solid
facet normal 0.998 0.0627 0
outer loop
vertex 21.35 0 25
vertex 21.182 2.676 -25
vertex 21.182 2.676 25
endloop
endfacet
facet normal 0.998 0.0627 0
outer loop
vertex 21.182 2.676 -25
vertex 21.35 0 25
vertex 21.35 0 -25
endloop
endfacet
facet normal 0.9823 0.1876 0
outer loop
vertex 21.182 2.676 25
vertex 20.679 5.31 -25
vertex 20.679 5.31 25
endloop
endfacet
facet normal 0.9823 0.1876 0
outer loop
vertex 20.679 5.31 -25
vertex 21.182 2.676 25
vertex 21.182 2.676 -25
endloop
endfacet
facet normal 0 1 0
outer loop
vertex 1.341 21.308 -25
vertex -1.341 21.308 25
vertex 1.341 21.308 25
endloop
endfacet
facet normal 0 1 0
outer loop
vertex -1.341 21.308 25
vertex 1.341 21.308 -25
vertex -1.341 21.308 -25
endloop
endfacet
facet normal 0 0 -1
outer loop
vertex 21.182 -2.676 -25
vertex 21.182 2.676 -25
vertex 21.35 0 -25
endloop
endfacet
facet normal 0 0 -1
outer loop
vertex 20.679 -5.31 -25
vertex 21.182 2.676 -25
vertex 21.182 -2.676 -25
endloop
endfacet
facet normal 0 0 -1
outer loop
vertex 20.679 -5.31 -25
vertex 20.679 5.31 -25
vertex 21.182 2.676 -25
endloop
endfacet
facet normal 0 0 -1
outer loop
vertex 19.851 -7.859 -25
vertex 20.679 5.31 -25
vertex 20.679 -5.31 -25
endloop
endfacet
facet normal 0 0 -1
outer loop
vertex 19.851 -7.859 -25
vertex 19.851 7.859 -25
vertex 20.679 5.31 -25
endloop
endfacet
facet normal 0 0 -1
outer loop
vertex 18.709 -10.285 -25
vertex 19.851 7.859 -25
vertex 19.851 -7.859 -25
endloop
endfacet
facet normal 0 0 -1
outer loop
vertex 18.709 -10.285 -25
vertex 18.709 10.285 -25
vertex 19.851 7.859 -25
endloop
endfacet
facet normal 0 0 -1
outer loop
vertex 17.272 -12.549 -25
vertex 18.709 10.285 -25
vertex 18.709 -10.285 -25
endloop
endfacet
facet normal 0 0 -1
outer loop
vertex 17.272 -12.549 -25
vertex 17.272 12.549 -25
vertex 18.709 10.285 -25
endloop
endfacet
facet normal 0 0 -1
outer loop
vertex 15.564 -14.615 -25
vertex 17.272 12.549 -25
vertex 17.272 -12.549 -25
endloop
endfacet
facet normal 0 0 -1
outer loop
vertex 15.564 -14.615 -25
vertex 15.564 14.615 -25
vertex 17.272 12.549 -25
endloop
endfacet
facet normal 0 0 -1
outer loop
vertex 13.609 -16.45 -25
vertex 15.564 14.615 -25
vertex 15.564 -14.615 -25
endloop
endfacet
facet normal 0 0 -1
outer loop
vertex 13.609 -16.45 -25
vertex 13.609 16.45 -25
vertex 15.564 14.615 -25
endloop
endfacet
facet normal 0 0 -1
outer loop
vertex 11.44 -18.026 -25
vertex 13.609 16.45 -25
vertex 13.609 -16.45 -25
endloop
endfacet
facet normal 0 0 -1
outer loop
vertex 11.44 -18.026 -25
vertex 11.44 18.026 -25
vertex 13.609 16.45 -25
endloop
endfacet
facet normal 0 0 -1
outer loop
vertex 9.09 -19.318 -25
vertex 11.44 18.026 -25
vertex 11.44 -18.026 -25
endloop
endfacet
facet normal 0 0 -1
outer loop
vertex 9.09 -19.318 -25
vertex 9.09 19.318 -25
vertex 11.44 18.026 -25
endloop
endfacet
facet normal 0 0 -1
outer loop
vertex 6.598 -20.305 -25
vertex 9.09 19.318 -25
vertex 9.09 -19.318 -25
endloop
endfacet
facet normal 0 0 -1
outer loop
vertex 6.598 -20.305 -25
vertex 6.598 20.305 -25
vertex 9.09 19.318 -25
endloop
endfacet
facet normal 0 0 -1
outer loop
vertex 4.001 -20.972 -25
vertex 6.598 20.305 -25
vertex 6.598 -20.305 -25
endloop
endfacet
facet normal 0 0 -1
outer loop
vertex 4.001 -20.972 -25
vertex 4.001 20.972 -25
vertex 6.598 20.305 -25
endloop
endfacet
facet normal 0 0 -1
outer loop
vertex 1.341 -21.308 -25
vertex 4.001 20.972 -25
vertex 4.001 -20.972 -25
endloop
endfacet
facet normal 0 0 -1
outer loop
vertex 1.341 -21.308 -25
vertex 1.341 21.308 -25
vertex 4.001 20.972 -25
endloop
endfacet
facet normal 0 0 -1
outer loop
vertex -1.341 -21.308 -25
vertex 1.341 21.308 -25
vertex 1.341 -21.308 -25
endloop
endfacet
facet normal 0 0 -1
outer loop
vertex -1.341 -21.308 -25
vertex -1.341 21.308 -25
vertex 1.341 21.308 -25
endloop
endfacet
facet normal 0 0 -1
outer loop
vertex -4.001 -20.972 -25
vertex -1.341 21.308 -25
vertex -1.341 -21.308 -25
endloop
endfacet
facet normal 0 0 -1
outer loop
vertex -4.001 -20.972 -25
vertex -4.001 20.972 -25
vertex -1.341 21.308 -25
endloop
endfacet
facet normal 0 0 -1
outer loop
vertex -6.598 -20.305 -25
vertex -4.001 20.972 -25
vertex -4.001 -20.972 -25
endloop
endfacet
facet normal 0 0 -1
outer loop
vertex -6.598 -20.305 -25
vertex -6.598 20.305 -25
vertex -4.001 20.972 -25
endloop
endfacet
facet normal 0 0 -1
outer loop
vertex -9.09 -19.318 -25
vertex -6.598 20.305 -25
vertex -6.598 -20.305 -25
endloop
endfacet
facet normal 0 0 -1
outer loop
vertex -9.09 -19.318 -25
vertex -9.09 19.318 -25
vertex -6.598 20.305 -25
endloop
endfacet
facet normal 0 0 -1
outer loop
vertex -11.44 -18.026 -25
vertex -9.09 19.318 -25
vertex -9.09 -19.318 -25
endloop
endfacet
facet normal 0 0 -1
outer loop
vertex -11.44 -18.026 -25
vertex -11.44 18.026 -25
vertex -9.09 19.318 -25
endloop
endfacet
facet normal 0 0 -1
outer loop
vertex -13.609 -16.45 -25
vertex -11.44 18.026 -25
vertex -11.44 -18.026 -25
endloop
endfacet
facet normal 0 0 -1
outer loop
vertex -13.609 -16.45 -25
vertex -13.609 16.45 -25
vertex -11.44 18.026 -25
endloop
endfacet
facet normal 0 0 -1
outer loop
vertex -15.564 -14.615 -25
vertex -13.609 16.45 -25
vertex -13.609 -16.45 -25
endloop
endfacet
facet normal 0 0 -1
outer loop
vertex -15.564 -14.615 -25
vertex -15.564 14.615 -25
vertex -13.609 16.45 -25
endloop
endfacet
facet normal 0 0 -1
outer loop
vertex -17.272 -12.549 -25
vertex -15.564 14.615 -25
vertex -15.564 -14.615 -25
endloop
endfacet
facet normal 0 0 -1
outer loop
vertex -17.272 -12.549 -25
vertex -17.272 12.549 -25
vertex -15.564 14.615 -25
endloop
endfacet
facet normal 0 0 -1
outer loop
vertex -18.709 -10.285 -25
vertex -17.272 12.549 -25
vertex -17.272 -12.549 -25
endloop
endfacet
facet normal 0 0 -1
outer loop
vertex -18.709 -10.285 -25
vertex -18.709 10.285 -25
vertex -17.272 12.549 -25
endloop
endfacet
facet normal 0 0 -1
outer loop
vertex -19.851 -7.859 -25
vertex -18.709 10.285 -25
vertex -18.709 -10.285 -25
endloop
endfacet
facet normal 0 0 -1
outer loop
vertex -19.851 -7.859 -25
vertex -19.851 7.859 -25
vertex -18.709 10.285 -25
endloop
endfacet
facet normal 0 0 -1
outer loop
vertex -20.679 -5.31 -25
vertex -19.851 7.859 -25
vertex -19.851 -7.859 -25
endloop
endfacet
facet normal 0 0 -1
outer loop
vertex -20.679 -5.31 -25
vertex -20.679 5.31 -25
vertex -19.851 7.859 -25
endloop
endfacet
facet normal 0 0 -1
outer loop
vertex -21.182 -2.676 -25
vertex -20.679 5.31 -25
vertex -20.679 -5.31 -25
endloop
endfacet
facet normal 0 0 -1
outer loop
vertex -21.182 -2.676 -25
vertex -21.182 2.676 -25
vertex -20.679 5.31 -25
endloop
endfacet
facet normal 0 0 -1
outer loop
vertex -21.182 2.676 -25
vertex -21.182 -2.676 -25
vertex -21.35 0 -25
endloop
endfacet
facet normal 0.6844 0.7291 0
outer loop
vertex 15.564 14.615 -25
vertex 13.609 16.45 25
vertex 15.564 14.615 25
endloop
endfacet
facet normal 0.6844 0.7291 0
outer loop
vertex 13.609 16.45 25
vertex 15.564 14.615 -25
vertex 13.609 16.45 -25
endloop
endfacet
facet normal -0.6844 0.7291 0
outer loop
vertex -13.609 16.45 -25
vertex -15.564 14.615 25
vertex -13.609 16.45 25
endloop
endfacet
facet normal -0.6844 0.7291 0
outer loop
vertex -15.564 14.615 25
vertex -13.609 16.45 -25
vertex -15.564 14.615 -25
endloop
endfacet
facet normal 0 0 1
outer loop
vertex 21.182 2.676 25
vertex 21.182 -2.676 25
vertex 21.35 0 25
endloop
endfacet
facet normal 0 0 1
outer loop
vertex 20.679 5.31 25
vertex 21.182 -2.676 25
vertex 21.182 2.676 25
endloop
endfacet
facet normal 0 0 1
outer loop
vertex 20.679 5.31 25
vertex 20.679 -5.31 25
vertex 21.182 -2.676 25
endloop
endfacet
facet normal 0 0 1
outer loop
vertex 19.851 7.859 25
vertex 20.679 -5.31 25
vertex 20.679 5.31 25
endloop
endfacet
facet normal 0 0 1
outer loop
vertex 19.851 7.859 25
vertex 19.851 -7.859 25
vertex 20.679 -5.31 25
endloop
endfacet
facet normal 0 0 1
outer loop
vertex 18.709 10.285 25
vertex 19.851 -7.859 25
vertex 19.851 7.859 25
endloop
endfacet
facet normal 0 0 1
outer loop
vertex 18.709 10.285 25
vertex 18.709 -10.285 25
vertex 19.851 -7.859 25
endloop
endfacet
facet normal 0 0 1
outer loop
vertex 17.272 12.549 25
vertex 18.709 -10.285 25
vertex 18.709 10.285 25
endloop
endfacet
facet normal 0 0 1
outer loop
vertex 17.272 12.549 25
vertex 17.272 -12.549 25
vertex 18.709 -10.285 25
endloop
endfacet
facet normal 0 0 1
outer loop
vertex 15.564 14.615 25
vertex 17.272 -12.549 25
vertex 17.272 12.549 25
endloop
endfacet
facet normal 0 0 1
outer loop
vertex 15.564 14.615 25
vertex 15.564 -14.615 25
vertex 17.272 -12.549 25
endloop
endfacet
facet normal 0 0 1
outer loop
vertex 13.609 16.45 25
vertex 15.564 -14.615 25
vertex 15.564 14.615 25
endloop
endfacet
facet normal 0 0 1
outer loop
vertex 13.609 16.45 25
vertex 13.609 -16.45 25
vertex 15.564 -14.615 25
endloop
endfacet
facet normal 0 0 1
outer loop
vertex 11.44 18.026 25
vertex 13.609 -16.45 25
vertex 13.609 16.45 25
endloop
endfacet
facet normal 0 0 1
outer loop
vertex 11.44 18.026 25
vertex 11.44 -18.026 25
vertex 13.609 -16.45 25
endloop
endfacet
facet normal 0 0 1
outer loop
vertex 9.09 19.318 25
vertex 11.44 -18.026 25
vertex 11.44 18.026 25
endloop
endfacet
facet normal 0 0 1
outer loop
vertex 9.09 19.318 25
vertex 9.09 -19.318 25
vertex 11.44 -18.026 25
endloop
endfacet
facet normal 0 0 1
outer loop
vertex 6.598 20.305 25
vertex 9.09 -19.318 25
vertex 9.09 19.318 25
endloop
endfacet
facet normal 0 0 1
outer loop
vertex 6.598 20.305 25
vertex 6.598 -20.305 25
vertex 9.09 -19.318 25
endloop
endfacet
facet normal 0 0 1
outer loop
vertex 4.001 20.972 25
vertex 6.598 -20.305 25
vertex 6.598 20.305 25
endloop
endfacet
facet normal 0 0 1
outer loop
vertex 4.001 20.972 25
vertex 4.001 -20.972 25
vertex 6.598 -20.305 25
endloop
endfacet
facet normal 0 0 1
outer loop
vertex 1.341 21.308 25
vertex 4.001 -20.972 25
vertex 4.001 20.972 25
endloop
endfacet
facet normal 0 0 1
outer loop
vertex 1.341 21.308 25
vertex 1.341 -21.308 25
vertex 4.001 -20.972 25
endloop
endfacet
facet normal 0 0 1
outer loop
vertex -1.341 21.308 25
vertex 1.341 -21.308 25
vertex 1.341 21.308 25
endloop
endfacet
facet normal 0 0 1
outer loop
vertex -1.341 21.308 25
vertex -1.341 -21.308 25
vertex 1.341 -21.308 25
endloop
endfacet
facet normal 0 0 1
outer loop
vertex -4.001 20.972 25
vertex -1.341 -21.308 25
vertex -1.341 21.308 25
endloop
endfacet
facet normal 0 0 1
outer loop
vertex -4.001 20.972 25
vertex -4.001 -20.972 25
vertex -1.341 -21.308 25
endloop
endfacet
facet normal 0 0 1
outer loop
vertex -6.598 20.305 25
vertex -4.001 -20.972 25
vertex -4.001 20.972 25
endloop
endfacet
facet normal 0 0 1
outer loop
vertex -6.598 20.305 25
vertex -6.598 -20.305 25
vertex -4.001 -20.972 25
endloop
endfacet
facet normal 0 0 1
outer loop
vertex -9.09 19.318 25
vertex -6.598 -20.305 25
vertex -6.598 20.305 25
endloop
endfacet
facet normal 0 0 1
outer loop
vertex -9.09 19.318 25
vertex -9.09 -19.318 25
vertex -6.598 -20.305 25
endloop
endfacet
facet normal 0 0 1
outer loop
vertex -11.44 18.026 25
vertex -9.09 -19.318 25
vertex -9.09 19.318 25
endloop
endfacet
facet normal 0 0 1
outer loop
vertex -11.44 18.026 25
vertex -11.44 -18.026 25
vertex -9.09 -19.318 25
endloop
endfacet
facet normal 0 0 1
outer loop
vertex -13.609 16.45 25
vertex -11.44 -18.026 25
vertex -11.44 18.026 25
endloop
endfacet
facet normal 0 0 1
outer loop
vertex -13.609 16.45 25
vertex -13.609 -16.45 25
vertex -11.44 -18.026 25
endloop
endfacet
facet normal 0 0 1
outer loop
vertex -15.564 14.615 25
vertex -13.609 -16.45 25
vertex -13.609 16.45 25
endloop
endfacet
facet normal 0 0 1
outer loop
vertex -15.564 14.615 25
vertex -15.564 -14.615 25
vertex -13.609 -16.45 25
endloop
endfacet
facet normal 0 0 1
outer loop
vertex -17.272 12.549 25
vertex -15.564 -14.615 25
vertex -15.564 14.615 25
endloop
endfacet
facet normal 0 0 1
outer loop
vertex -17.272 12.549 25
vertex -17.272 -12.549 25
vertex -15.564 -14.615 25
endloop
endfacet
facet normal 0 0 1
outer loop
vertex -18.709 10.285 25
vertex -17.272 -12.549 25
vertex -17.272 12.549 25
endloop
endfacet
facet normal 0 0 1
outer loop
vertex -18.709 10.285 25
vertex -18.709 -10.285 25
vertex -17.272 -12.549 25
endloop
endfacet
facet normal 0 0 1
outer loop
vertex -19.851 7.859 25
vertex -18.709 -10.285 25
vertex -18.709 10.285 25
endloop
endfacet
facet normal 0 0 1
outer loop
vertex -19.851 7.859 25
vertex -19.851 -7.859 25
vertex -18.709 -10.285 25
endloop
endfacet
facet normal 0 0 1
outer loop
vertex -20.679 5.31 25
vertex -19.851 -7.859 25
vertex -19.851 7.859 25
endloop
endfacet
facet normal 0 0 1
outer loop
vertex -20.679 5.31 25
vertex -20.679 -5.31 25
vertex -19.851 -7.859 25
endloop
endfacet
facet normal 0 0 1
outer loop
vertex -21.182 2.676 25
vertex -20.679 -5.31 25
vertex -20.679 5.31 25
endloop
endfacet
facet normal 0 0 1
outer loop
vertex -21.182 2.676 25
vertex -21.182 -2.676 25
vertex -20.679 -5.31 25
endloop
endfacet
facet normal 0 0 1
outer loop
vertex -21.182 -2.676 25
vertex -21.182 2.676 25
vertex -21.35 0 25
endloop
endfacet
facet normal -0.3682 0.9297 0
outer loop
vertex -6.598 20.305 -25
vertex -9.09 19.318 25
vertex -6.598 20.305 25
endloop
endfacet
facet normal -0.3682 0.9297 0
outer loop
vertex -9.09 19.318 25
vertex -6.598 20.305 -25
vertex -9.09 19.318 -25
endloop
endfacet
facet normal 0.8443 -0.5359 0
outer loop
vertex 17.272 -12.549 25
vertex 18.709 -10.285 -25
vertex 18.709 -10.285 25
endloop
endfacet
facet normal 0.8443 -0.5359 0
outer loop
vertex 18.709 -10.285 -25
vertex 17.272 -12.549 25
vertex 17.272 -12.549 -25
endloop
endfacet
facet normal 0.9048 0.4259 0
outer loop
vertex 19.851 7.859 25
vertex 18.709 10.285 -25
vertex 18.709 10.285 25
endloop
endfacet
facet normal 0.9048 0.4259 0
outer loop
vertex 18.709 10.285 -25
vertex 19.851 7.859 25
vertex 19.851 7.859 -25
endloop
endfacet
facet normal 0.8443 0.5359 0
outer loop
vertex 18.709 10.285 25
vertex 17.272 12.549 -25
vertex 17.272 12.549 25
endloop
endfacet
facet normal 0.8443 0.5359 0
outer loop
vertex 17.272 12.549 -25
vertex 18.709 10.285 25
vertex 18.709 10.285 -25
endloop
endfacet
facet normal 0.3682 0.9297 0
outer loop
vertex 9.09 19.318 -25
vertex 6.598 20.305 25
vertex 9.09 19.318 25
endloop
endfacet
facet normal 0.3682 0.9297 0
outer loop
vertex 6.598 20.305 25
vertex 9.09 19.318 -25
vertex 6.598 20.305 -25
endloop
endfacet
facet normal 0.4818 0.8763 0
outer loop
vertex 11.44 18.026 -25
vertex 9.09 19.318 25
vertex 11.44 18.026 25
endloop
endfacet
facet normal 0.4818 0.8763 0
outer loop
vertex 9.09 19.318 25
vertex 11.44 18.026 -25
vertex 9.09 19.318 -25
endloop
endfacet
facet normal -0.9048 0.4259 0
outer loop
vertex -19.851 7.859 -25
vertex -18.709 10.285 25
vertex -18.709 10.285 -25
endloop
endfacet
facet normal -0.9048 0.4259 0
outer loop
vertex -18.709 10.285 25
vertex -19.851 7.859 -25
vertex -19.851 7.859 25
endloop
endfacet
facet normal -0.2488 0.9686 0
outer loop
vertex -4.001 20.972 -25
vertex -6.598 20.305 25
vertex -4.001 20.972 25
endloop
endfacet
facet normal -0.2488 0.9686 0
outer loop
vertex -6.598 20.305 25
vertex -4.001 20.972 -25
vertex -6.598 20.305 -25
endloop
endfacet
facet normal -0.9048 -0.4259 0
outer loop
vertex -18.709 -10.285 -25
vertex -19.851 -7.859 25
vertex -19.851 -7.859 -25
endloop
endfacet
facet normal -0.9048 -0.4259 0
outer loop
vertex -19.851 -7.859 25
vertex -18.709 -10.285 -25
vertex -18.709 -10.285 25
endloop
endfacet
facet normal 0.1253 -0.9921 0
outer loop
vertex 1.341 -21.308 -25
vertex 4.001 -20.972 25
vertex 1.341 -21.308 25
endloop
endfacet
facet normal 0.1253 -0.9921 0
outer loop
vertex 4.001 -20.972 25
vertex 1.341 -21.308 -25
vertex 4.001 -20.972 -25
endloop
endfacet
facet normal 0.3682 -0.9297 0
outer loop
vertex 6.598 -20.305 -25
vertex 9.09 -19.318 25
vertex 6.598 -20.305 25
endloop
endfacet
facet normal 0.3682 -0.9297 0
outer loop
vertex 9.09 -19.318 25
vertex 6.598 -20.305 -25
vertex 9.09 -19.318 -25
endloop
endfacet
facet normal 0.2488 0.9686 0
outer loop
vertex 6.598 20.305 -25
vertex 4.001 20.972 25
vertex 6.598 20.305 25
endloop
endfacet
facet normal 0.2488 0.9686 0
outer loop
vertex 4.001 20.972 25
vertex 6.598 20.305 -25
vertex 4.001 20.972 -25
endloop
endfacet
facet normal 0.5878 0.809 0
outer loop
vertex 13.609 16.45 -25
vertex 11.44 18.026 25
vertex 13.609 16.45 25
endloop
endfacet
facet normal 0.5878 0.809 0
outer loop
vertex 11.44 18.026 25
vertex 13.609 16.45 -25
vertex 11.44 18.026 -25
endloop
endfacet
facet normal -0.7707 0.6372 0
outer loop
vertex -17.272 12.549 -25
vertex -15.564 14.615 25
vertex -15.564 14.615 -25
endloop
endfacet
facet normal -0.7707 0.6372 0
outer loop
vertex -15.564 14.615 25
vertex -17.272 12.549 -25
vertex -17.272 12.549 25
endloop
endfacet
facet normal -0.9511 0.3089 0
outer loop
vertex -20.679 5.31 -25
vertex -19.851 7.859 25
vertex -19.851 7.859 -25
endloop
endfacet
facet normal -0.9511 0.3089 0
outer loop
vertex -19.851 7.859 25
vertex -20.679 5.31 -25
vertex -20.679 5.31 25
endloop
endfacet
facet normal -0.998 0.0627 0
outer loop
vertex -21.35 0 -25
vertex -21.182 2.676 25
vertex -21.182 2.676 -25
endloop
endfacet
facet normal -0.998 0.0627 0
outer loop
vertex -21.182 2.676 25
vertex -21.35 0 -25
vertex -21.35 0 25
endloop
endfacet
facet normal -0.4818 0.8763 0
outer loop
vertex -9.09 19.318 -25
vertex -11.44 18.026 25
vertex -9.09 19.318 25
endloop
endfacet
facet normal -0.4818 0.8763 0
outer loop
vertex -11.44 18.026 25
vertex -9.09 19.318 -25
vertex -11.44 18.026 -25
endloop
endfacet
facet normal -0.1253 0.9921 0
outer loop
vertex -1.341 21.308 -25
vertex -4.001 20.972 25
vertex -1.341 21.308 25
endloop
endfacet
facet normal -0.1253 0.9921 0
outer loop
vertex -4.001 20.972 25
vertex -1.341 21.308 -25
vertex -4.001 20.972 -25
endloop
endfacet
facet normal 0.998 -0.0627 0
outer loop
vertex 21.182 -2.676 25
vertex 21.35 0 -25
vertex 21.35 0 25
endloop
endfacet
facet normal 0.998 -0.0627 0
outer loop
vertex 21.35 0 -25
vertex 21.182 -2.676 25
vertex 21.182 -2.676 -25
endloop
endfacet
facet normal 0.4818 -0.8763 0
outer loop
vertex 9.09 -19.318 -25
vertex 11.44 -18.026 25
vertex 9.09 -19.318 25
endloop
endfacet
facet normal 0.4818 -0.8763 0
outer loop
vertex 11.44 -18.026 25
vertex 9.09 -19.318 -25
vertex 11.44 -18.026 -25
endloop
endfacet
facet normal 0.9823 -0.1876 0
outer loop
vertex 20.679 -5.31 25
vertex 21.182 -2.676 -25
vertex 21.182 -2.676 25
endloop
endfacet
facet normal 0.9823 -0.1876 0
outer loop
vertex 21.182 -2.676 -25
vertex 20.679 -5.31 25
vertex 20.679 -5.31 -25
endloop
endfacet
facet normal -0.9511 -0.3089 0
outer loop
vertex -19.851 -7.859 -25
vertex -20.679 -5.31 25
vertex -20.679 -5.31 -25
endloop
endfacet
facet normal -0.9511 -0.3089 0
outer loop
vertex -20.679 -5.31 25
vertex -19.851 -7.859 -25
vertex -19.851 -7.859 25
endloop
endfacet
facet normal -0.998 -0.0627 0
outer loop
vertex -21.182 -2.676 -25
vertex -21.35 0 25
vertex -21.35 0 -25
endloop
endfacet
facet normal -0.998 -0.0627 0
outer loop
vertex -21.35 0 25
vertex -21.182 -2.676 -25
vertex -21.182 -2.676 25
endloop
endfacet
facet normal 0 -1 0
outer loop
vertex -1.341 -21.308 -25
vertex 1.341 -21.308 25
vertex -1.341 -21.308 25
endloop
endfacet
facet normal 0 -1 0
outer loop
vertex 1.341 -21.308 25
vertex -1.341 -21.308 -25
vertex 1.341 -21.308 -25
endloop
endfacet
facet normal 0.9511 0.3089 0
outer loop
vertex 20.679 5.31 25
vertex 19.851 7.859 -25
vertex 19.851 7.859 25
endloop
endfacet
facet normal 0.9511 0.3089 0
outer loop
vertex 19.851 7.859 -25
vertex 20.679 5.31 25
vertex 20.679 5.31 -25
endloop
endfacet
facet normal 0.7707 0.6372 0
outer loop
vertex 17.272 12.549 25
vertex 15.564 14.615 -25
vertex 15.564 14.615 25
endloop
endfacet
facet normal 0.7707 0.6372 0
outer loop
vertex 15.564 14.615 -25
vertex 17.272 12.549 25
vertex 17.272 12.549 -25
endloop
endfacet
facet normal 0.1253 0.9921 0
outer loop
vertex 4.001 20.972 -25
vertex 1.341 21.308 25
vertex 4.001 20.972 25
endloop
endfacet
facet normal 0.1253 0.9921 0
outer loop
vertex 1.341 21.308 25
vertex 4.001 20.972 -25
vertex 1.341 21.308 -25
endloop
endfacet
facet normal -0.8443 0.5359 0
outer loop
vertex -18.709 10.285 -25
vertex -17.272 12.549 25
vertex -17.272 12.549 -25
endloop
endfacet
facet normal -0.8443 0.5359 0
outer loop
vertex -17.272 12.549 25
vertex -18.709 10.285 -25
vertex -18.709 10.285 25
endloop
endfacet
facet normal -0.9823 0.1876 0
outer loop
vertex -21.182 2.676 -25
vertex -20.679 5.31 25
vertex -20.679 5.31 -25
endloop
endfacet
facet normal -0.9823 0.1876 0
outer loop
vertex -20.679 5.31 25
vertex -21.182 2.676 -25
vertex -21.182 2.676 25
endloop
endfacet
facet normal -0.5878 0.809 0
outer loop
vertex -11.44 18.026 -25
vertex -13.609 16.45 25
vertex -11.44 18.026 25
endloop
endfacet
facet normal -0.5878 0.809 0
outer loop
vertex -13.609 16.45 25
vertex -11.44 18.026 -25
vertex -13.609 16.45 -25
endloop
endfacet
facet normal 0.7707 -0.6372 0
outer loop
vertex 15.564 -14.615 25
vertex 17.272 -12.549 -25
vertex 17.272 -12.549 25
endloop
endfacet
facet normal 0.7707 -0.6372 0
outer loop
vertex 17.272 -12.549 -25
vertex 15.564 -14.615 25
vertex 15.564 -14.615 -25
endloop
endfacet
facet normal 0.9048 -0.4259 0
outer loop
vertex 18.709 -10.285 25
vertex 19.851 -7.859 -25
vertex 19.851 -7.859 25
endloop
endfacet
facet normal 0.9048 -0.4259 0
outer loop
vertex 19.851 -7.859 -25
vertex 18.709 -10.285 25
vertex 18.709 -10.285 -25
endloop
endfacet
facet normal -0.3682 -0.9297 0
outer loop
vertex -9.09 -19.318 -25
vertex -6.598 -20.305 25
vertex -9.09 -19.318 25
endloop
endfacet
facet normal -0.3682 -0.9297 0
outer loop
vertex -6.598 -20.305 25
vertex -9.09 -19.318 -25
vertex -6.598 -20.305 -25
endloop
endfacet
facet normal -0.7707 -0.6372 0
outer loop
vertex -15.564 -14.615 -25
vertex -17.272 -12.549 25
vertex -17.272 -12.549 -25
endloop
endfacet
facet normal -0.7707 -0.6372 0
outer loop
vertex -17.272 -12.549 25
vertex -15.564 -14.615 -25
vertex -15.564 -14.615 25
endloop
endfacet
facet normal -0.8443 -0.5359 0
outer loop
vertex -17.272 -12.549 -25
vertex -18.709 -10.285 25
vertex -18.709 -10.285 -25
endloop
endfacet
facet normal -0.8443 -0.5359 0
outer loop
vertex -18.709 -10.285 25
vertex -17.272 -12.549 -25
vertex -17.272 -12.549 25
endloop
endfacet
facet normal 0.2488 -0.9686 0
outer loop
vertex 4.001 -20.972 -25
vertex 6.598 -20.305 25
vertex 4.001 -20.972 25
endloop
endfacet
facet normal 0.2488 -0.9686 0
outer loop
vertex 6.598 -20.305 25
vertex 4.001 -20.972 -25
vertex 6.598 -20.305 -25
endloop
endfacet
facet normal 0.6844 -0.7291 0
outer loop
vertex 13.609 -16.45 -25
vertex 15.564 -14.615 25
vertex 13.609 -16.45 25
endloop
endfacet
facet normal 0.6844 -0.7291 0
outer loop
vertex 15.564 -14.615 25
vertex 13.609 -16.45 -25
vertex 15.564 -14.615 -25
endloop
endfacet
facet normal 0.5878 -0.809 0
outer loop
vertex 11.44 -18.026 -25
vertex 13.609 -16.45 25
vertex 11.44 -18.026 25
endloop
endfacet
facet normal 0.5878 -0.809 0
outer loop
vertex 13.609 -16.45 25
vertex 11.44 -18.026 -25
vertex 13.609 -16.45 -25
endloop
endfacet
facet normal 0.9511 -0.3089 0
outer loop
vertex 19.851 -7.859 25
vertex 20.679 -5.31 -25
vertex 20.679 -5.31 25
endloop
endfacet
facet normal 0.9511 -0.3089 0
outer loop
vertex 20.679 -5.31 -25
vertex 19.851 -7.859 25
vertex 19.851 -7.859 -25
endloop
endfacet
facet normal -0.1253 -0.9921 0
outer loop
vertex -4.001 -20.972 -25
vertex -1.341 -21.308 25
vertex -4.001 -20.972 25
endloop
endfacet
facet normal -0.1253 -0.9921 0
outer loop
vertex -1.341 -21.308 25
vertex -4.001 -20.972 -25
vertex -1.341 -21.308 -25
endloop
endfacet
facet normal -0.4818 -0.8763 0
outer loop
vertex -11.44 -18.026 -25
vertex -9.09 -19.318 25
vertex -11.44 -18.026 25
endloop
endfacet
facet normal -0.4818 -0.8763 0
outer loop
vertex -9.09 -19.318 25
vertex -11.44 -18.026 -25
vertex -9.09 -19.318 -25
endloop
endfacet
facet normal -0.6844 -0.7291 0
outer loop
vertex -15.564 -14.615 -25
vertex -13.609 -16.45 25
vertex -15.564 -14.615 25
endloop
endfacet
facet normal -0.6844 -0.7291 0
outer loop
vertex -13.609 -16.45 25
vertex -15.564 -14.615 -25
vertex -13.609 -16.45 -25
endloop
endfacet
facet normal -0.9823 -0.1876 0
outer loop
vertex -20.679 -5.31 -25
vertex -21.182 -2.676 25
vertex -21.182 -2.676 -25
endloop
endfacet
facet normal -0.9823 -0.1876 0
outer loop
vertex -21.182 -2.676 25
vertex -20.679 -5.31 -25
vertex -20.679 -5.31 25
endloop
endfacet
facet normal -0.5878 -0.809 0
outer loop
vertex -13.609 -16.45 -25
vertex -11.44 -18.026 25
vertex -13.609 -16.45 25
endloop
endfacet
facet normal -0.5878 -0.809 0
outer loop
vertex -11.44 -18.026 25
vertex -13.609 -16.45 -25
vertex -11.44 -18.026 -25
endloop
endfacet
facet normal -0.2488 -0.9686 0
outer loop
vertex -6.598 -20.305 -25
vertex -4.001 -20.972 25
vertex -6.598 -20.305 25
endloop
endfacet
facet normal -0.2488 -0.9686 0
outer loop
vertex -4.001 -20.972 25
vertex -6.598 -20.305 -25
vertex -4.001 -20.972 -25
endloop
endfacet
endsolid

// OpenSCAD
$fn = 50;


difference() {
	union() {
		translate(v = [0, 0, -25.0000000000]) {
			cylinder(h = 50, r = 21.3500000000);
		}
	}
	union() {
		translate(v = [0, 0, -100.0000000000]) {
			cylinder(h = 200, r = 0);
		}
	}
}
